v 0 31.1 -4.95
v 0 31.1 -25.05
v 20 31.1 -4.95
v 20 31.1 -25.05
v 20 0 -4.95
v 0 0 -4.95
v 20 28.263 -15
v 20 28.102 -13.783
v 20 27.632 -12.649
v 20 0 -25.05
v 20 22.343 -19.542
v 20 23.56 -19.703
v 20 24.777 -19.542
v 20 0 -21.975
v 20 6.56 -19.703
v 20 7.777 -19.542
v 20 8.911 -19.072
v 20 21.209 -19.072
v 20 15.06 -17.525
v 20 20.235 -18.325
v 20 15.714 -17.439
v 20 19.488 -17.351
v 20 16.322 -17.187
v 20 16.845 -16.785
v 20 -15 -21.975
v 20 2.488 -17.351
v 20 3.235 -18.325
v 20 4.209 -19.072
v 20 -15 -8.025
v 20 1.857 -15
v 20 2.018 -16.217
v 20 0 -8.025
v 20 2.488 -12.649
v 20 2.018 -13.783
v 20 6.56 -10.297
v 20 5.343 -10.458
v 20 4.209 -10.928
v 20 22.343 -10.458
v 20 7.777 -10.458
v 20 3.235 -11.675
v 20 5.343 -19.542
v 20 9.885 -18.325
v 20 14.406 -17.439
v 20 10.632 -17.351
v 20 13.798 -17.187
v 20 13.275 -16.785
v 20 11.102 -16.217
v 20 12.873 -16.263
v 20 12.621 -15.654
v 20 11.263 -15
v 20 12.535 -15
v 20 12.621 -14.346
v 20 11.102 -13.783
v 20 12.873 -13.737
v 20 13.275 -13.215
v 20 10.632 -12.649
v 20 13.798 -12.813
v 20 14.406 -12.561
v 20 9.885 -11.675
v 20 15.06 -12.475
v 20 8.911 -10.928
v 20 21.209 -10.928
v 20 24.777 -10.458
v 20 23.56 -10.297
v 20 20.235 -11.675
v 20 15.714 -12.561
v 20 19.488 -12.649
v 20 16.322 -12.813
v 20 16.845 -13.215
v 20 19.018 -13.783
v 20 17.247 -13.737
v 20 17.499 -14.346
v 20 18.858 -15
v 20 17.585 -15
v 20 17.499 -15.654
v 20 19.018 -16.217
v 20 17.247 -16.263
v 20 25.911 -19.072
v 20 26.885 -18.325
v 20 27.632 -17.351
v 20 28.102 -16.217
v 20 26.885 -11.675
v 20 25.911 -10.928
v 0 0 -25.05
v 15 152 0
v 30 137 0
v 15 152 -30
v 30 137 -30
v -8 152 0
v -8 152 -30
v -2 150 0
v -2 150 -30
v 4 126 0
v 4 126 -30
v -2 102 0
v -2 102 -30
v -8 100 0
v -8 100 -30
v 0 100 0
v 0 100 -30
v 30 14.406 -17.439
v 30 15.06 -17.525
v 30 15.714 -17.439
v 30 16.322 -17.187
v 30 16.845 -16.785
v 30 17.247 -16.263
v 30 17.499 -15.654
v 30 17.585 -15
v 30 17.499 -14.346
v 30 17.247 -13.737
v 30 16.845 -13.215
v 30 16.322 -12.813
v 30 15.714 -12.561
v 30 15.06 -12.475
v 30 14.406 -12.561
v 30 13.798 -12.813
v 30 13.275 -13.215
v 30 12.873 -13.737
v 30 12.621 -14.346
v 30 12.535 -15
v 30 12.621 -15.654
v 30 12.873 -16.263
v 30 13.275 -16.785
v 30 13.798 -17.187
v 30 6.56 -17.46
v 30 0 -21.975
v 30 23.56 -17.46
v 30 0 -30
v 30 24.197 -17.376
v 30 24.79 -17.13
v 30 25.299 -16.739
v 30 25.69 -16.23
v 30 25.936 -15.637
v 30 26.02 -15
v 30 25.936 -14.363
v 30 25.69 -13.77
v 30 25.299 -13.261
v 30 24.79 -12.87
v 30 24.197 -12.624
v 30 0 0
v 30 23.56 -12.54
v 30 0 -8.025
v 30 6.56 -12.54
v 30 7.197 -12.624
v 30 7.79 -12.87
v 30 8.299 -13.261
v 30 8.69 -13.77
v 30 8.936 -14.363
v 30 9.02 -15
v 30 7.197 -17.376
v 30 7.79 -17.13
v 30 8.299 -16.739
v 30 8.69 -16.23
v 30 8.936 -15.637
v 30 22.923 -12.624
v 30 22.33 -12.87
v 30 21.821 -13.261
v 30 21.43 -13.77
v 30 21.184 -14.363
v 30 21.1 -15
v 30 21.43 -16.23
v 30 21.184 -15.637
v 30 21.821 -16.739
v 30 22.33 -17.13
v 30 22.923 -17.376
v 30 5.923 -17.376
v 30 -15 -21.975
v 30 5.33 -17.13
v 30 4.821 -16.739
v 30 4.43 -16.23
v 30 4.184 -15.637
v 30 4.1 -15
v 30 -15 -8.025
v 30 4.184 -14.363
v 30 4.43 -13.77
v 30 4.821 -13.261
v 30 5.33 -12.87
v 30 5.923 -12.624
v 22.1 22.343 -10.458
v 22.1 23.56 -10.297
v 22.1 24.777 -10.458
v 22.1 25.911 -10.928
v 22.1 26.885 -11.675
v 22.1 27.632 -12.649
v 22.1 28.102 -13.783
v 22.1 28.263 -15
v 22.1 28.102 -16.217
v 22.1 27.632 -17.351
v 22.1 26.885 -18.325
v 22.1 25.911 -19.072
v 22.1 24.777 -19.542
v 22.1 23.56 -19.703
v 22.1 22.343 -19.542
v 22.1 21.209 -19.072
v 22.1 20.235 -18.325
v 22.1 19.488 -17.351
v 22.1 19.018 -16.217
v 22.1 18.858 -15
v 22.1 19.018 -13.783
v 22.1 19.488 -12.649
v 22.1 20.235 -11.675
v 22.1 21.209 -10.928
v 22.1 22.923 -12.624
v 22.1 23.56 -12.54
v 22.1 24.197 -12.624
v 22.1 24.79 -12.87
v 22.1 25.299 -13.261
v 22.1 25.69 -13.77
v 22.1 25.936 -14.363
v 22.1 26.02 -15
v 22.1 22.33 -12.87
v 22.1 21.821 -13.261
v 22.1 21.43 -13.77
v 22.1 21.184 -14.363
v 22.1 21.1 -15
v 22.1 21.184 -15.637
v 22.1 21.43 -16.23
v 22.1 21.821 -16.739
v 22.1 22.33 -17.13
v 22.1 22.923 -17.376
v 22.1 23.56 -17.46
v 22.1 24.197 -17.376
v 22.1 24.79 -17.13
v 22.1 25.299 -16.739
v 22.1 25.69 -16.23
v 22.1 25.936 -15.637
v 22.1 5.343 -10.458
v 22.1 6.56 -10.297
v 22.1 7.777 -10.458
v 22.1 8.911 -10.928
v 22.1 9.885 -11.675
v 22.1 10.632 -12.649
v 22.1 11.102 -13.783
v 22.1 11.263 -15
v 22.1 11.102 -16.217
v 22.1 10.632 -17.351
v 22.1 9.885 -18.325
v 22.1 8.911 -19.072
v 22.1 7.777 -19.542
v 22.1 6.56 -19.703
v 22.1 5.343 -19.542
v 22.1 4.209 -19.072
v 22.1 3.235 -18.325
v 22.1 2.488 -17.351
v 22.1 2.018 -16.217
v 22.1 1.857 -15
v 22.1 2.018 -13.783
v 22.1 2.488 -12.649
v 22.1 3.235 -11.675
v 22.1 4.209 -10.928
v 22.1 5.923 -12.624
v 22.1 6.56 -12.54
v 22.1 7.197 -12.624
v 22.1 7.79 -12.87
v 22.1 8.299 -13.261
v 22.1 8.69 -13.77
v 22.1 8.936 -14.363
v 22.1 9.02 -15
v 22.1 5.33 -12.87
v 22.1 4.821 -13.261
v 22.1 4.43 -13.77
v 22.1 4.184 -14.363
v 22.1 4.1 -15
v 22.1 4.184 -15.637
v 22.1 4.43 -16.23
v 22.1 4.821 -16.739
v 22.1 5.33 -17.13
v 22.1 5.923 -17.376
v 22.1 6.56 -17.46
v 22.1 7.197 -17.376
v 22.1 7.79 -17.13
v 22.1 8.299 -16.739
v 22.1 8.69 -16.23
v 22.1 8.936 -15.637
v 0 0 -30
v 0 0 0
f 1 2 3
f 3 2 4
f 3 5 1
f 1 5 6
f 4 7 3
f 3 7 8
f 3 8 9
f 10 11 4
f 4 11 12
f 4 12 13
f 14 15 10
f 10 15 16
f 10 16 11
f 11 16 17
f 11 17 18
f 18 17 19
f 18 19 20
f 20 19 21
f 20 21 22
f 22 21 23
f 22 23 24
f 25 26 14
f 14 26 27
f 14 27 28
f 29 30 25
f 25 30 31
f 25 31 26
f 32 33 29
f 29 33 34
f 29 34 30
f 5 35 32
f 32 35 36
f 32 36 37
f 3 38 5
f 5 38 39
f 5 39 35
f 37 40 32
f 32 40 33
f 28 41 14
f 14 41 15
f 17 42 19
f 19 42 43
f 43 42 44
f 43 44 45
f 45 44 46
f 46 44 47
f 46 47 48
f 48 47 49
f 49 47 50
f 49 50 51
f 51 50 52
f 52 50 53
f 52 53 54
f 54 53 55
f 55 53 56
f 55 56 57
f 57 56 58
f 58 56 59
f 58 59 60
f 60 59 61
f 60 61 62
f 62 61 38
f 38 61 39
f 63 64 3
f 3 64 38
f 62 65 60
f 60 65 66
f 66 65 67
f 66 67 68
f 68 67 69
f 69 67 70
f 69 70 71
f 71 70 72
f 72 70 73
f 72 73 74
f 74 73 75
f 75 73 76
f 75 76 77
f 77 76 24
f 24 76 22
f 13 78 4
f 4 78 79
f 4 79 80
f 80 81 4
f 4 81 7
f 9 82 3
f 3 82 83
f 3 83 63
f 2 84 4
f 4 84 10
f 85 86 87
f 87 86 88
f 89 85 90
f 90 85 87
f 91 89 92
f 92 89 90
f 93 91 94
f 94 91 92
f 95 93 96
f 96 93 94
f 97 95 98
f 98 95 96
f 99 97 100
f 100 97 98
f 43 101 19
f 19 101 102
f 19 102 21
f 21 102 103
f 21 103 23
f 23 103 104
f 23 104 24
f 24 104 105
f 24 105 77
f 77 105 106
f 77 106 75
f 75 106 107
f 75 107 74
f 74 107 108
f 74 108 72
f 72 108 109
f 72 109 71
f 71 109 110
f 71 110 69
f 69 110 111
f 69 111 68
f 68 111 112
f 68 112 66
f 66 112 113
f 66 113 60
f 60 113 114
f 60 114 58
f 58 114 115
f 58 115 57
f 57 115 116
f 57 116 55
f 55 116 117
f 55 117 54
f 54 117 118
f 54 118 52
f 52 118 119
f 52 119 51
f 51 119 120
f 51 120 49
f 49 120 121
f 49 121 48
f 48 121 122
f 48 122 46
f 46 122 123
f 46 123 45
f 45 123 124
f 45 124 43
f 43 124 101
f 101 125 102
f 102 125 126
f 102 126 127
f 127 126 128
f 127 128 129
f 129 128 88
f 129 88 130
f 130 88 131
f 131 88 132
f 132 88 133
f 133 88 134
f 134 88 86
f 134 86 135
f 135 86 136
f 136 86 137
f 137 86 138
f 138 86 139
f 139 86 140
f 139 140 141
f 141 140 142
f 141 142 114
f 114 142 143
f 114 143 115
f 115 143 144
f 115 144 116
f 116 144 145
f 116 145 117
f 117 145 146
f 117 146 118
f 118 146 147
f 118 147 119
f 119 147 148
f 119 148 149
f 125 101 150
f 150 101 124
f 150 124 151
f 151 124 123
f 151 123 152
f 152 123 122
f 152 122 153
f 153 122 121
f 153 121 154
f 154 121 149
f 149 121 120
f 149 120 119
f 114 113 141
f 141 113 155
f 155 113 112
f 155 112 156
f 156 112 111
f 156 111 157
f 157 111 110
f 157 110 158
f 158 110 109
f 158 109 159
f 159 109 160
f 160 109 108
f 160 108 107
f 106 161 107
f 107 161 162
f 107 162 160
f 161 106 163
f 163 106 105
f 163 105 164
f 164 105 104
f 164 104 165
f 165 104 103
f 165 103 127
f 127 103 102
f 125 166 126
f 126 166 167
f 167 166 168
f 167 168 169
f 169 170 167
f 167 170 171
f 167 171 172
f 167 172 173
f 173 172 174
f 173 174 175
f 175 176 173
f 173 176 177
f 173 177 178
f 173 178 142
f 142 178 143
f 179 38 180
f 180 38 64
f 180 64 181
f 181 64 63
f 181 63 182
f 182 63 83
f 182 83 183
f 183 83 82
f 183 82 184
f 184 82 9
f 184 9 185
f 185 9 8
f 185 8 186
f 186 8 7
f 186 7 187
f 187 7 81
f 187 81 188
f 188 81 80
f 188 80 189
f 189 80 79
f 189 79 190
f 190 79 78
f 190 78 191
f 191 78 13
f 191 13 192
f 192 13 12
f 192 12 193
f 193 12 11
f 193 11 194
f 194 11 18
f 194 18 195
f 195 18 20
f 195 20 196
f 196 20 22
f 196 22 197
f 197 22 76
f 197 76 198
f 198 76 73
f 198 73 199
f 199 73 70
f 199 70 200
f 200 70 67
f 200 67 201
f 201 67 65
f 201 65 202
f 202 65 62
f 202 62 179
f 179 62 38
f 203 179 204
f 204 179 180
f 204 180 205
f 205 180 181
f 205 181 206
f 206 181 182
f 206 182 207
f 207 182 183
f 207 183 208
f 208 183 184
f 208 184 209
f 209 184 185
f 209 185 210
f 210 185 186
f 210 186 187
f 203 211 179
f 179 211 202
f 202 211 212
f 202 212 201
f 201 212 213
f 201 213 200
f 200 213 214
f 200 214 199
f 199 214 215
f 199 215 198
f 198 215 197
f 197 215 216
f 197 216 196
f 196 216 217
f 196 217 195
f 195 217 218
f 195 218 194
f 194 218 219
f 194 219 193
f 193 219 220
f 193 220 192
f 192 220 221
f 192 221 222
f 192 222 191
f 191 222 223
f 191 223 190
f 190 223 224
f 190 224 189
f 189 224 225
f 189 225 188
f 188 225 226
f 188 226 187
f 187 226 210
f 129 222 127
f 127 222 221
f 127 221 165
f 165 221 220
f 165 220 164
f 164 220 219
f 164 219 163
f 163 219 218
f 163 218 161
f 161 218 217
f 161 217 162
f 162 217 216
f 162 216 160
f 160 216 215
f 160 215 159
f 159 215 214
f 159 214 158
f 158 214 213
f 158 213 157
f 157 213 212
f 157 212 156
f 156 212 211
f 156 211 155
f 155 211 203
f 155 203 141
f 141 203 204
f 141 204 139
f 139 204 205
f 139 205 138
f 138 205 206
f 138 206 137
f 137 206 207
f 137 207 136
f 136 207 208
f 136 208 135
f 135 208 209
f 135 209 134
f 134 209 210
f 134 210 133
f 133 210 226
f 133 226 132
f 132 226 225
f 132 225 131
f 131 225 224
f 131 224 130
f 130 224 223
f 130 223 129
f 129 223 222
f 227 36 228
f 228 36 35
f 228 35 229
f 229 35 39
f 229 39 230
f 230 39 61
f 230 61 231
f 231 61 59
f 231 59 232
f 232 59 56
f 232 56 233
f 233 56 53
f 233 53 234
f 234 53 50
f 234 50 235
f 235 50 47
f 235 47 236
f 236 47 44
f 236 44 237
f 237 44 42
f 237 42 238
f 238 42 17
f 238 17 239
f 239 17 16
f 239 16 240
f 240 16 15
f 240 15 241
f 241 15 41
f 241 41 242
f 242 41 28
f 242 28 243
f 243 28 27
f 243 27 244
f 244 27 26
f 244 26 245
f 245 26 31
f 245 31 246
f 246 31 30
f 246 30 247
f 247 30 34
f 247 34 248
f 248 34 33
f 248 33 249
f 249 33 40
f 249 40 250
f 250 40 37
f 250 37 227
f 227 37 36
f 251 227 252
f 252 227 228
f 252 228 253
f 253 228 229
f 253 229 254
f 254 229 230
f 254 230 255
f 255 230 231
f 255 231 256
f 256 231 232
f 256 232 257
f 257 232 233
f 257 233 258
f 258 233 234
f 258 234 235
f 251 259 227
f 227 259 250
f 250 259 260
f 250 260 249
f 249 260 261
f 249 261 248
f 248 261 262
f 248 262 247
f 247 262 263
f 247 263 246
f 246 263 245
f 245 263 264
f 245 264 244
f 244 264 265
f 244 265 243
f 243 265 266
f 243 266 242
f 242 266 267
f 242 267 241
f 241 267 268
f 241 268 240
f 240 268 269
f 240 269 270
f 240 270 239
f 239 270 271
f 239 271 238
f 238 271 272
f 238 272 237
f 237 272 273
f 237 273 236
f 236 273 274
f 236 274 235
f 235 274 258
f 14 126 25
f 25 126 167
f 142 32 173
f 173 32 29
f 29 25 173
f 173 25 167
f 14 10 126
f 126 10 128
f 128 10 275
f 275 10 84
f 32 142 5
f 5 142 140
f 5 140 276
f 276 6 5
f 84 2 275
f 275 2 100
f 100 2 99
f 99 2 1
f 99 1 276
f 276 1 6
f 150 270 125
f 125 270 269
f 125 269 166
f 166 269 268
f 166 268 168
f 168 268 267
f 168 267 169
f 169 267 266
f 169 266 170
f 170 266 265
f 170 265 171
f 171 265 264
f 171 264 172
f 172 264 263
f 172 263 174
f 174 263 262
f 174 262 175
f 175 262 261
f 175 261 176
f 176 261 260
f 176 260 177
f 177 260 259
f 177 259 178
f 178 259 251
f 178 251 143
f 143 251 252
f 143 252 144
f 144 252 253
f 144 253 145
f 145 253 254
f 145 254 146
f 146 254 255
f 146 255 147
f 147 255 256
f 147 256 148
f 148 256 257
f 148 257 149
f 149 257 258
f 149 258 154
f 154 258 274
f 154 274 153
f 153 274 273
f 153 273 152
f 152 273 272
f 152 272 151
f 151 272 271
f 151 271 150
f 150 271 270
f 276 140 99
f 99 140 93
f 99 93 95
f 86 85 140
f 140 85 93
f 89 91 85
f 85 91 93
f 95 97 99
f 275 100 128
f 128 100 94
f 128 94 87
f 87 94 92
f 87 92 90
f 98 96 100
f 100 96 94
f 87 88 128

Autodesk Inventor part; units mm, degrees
ref_plane "YZ Plane" through (0, 0, 0) normal (1, 0, 0) x (0, 1, 0)
ref_plane "XZ Plane" through (0, 0, 0) normal (0, 1, 0) x (-1, 0, 0)
ref_plane "XY Plane" through (0, 0, 0) normal (0, 0, 1) x (1, 0, 0)
sketch "Sketch1" plane through (0, 0, 0) normal (0, 0, 1) x (1, 0, 0)
  line L0 (0, 0) -> (25, 0)
  line L1 (25, 0) -> (25, 40)
  line L2 (25, 40) -> (0, 40)
  line L3 (0, 40) -> (0, 0)
  dimension "d1" = 25
  dimension "d2" = 40
  dimension "d3" = 25
extrude "Extrusion1" add sketch "Sketch1" against normal blind 30
sketch "Sketch2" plane through (25, 0, 0) normal (1, 0, 0) x (0, 0, -1)
  line L0 (0, 0) -> (30, 0) projected
  circle A0 centre (15, 6.56) radius 2.46
extrude "Extrusion2" cut sketch "Sketch2" against normal blind 30
sketch "Sketch3" plane through (0, 0, 0) normal (-1, 0, 0) x (0, 0, 1)
  line L0 (0, 0) -> (-30, 0) projected
  line L1 (-25.05, 0) -> (-4.95, 0)
  line L2 (-4.95, 0) -> (-4.95, 33.12)
  line L3 (-4.95, 33.12) -> (-25.05, 33.12)
  line L4 (-25.05, 33.12) -> (-25.05, 0)
  dimension "d11" = 20.1
extrude "Extrusion3" cut sketch "Sketch3" against normal blind 20
sketch "Sketch4" plane through (0, 0, 0) normal (0, -1, 0) x (1, 0, 0)
  line L0 (20, -4.95) -> (20, -25.05) projected
  line L1 (20, -15) -> (25, -15)
  line L2 (25, 0) -> (25, -30) projected
  line L3 (20, -8.025) -> (25, -8.025)
  line L4 (25, -8.025) -> (25, -21.975)
  line L5 (25, -21.975) -> (20, -21.975)
  line L6 (20, -21.975) -> (20, -8.025)
  line L7 (20, -8.025) -> (25, -21.975) construction
  line L8 (25, -8.025) -> (20, -21.975) construction
  line L9 (25, -12.54) -> (25, -17.46) projected
  point P0 (0, 0)
  point P1 (22.5, -15)
  dimension "d14" = 13.95
extrude "Extrusion4" add sketch "Sketch4" along normal blind 15
sketch "Sketch5" plane through (20, 0, 0) normal (-1, 0, 0) x (0, 0, 1)
  circle A0 centre (-15, 6.56) radius 2.46 projected
  circle A1 centre (-15, 6.56) radius 4.7025
  circle A2 centre (-15, 6.56) radius 2.46 projected
  circle A3 centre (-15, 6.56) radius 2.46
  point P0 (0, 0)
  dimension "d17" = 9.405
extrude "Extrusion5" cut sketch "Sketch5" against normal blind 2.1
sketch "Sketch6" plane through (25, 0, 0) normal (1, 0, 0) x (0, 0, -1)
  circle A0 centre (15, 6.56) radius 4.7025 projected
  line L0 (15, 6.56) -> (15, 23.56)
  circle A1 centre (15, 23.56) radius 2.46
  point P0 (0, 0)
  dimension "d20" = 17
  dimension "d21" = 4.92
extrude "Extrusion6" cut sketch "Sketch6" against normal blind 10 contours A1
sketch "Sketch7" plane through (20, 0, 0) normal (-1, 0, 0) x (0, 0, 1)
  circle A0 centre (-15, 23.56) radius 2.46 projected
  circle A1 centre (-15, 23.56) radius 4.7025
  point P0 (0, 0)
  dimension "d24" = 9.405
extrude "Extrusion7" cut sketch "Sketch7" against normal blind 2.1
sketch "Sketch9" plane through (25, 0, 0) normal (1, 0, 0) x (0, 0, -1)
  circle A0 centre (15, 6.56) radius 2.46 projected
  circle A1 centre (15, 6.56) radius 2.46
  circle A2 centre (15, 23.56) radius 2.46 projected
  circle A3 centre (15, 23.56) radius 2.46
  line L0 (30, 40) -> (30, 0) projected
  line L1 (30, 0) -> (30, 40)
  line L2 (30, 40) -> (0, 40)
  line L3 (0, 40) -> (0, 0)
  line L4 (0, 0) -> (8.025, 0) projected
  line L5 (21.975, 0) -> (21.975, -15)
  line L6 (21.975, -15) -> (8.025, -15)
  line L7 (8.025, -15) -> (8.025, 0)
  line L8 (0, 0) -> (8.025, 0)
  line L9 (21.975, 0) -> (30, 0)
extrude "Extrusion8" add sketch "Sketch9" along normal blind 5
sketch "Sketch10" plane through (0, 40, 0) normal (0, 1, 0) x (1, 0, 0)
  line L0 (0, 30) -> (30, 30) projected
  line L1 (30, 0) -> (0, 0) projected
  line L2 (0, 30) -> (30, 30)
  line L3 (30, 30) -> (30, 0)
  line L4 (30, 0) -> (0, 0)
  line L5 (0, 0) -> (0, 30)
extrude "Extrusion9" add sketch "Sketch10" along normal blind 30
sketch "Sketch12" plane through (30, 0, 0) normal (1, 0, 0) x (0, 0, -1)
  circle A0 centre (15, 6.56) radius 2.46 projected
  line L0 (15, 6.56) -> (15, 15.06)
  circle A1 centre (15, 15.06) radius 2.525
  point P0 (0, 0)
  dimension "d31" = 8.5
  dimension "d33" = 5.05
extrude "Extrusion10" cut sketch "Sketch12" against normal blind 30 contours A1
sketch "Sketch14" plane through (0, 0, 0) normal (0, 0, 1) x (1, 0, 0)
  line L0 (30, 70) -> (0, 70) projected
  line L1 (0, 100) -> (-8, 100)
  line L2 (30, 0) -> (30, 70) projected
  line L3 (30, 118) -> (30, 70)
  line L4 (30, 105) -> (30, 100)
  line L5 (0, 70) -> (30, 70) projected
  line L6 (0, 70) -> (0, 100)
  line L7 (30, 122.5) -> (30, 118)
  line L8 (-2, 150) -> (-8, 152)
  line L9 (-2, 102) -> (-8, 100)
  line L10 (-2, 102) -> (4, 126)
  line L11 (4, 126) -> (-2, 150)
  line L12 (-8, 152) -> (15, 152)
  line L13 (30, 137) -> (15, 152)
  line L14 (30, 122.5) -> (30, 137)
  point P0 (0, 0)
  dimension "d47" = 30
extrude "Extrusion12" add sketch "Sketch14" against normal blind 30
sketch "Sketch15" plane through (0, 0, -25.05) normal (-1, 0, 0) x (0, 0, 1)
  line L0 (0, 33.12) -> (20.1, 33.12) projected
  line L1 (20.1, 33.12) -> (20.1, 0) projected
  line L2 (0, 33.12) -> (20.1, 33.12)
  line L3 (20.1, 33.12) -> (20.1, 31.1)
  line L4 (20.1, 31.1) -> (0, 31.1)
  line L5 (0, 31.1) -> (0, 33.12)
  point P0 (25.05, 0)
  dimension "d57" = 2.02
extrude "Extrusion13" add sketch "Sketch15" against normal blind 20
sketch "Sketch25" plane through (0, 0, 0) normal (0, 0, 1) x (1, 0, 0)
  point P0 (0, 0)
properties part number "48mm_x_30mm"
